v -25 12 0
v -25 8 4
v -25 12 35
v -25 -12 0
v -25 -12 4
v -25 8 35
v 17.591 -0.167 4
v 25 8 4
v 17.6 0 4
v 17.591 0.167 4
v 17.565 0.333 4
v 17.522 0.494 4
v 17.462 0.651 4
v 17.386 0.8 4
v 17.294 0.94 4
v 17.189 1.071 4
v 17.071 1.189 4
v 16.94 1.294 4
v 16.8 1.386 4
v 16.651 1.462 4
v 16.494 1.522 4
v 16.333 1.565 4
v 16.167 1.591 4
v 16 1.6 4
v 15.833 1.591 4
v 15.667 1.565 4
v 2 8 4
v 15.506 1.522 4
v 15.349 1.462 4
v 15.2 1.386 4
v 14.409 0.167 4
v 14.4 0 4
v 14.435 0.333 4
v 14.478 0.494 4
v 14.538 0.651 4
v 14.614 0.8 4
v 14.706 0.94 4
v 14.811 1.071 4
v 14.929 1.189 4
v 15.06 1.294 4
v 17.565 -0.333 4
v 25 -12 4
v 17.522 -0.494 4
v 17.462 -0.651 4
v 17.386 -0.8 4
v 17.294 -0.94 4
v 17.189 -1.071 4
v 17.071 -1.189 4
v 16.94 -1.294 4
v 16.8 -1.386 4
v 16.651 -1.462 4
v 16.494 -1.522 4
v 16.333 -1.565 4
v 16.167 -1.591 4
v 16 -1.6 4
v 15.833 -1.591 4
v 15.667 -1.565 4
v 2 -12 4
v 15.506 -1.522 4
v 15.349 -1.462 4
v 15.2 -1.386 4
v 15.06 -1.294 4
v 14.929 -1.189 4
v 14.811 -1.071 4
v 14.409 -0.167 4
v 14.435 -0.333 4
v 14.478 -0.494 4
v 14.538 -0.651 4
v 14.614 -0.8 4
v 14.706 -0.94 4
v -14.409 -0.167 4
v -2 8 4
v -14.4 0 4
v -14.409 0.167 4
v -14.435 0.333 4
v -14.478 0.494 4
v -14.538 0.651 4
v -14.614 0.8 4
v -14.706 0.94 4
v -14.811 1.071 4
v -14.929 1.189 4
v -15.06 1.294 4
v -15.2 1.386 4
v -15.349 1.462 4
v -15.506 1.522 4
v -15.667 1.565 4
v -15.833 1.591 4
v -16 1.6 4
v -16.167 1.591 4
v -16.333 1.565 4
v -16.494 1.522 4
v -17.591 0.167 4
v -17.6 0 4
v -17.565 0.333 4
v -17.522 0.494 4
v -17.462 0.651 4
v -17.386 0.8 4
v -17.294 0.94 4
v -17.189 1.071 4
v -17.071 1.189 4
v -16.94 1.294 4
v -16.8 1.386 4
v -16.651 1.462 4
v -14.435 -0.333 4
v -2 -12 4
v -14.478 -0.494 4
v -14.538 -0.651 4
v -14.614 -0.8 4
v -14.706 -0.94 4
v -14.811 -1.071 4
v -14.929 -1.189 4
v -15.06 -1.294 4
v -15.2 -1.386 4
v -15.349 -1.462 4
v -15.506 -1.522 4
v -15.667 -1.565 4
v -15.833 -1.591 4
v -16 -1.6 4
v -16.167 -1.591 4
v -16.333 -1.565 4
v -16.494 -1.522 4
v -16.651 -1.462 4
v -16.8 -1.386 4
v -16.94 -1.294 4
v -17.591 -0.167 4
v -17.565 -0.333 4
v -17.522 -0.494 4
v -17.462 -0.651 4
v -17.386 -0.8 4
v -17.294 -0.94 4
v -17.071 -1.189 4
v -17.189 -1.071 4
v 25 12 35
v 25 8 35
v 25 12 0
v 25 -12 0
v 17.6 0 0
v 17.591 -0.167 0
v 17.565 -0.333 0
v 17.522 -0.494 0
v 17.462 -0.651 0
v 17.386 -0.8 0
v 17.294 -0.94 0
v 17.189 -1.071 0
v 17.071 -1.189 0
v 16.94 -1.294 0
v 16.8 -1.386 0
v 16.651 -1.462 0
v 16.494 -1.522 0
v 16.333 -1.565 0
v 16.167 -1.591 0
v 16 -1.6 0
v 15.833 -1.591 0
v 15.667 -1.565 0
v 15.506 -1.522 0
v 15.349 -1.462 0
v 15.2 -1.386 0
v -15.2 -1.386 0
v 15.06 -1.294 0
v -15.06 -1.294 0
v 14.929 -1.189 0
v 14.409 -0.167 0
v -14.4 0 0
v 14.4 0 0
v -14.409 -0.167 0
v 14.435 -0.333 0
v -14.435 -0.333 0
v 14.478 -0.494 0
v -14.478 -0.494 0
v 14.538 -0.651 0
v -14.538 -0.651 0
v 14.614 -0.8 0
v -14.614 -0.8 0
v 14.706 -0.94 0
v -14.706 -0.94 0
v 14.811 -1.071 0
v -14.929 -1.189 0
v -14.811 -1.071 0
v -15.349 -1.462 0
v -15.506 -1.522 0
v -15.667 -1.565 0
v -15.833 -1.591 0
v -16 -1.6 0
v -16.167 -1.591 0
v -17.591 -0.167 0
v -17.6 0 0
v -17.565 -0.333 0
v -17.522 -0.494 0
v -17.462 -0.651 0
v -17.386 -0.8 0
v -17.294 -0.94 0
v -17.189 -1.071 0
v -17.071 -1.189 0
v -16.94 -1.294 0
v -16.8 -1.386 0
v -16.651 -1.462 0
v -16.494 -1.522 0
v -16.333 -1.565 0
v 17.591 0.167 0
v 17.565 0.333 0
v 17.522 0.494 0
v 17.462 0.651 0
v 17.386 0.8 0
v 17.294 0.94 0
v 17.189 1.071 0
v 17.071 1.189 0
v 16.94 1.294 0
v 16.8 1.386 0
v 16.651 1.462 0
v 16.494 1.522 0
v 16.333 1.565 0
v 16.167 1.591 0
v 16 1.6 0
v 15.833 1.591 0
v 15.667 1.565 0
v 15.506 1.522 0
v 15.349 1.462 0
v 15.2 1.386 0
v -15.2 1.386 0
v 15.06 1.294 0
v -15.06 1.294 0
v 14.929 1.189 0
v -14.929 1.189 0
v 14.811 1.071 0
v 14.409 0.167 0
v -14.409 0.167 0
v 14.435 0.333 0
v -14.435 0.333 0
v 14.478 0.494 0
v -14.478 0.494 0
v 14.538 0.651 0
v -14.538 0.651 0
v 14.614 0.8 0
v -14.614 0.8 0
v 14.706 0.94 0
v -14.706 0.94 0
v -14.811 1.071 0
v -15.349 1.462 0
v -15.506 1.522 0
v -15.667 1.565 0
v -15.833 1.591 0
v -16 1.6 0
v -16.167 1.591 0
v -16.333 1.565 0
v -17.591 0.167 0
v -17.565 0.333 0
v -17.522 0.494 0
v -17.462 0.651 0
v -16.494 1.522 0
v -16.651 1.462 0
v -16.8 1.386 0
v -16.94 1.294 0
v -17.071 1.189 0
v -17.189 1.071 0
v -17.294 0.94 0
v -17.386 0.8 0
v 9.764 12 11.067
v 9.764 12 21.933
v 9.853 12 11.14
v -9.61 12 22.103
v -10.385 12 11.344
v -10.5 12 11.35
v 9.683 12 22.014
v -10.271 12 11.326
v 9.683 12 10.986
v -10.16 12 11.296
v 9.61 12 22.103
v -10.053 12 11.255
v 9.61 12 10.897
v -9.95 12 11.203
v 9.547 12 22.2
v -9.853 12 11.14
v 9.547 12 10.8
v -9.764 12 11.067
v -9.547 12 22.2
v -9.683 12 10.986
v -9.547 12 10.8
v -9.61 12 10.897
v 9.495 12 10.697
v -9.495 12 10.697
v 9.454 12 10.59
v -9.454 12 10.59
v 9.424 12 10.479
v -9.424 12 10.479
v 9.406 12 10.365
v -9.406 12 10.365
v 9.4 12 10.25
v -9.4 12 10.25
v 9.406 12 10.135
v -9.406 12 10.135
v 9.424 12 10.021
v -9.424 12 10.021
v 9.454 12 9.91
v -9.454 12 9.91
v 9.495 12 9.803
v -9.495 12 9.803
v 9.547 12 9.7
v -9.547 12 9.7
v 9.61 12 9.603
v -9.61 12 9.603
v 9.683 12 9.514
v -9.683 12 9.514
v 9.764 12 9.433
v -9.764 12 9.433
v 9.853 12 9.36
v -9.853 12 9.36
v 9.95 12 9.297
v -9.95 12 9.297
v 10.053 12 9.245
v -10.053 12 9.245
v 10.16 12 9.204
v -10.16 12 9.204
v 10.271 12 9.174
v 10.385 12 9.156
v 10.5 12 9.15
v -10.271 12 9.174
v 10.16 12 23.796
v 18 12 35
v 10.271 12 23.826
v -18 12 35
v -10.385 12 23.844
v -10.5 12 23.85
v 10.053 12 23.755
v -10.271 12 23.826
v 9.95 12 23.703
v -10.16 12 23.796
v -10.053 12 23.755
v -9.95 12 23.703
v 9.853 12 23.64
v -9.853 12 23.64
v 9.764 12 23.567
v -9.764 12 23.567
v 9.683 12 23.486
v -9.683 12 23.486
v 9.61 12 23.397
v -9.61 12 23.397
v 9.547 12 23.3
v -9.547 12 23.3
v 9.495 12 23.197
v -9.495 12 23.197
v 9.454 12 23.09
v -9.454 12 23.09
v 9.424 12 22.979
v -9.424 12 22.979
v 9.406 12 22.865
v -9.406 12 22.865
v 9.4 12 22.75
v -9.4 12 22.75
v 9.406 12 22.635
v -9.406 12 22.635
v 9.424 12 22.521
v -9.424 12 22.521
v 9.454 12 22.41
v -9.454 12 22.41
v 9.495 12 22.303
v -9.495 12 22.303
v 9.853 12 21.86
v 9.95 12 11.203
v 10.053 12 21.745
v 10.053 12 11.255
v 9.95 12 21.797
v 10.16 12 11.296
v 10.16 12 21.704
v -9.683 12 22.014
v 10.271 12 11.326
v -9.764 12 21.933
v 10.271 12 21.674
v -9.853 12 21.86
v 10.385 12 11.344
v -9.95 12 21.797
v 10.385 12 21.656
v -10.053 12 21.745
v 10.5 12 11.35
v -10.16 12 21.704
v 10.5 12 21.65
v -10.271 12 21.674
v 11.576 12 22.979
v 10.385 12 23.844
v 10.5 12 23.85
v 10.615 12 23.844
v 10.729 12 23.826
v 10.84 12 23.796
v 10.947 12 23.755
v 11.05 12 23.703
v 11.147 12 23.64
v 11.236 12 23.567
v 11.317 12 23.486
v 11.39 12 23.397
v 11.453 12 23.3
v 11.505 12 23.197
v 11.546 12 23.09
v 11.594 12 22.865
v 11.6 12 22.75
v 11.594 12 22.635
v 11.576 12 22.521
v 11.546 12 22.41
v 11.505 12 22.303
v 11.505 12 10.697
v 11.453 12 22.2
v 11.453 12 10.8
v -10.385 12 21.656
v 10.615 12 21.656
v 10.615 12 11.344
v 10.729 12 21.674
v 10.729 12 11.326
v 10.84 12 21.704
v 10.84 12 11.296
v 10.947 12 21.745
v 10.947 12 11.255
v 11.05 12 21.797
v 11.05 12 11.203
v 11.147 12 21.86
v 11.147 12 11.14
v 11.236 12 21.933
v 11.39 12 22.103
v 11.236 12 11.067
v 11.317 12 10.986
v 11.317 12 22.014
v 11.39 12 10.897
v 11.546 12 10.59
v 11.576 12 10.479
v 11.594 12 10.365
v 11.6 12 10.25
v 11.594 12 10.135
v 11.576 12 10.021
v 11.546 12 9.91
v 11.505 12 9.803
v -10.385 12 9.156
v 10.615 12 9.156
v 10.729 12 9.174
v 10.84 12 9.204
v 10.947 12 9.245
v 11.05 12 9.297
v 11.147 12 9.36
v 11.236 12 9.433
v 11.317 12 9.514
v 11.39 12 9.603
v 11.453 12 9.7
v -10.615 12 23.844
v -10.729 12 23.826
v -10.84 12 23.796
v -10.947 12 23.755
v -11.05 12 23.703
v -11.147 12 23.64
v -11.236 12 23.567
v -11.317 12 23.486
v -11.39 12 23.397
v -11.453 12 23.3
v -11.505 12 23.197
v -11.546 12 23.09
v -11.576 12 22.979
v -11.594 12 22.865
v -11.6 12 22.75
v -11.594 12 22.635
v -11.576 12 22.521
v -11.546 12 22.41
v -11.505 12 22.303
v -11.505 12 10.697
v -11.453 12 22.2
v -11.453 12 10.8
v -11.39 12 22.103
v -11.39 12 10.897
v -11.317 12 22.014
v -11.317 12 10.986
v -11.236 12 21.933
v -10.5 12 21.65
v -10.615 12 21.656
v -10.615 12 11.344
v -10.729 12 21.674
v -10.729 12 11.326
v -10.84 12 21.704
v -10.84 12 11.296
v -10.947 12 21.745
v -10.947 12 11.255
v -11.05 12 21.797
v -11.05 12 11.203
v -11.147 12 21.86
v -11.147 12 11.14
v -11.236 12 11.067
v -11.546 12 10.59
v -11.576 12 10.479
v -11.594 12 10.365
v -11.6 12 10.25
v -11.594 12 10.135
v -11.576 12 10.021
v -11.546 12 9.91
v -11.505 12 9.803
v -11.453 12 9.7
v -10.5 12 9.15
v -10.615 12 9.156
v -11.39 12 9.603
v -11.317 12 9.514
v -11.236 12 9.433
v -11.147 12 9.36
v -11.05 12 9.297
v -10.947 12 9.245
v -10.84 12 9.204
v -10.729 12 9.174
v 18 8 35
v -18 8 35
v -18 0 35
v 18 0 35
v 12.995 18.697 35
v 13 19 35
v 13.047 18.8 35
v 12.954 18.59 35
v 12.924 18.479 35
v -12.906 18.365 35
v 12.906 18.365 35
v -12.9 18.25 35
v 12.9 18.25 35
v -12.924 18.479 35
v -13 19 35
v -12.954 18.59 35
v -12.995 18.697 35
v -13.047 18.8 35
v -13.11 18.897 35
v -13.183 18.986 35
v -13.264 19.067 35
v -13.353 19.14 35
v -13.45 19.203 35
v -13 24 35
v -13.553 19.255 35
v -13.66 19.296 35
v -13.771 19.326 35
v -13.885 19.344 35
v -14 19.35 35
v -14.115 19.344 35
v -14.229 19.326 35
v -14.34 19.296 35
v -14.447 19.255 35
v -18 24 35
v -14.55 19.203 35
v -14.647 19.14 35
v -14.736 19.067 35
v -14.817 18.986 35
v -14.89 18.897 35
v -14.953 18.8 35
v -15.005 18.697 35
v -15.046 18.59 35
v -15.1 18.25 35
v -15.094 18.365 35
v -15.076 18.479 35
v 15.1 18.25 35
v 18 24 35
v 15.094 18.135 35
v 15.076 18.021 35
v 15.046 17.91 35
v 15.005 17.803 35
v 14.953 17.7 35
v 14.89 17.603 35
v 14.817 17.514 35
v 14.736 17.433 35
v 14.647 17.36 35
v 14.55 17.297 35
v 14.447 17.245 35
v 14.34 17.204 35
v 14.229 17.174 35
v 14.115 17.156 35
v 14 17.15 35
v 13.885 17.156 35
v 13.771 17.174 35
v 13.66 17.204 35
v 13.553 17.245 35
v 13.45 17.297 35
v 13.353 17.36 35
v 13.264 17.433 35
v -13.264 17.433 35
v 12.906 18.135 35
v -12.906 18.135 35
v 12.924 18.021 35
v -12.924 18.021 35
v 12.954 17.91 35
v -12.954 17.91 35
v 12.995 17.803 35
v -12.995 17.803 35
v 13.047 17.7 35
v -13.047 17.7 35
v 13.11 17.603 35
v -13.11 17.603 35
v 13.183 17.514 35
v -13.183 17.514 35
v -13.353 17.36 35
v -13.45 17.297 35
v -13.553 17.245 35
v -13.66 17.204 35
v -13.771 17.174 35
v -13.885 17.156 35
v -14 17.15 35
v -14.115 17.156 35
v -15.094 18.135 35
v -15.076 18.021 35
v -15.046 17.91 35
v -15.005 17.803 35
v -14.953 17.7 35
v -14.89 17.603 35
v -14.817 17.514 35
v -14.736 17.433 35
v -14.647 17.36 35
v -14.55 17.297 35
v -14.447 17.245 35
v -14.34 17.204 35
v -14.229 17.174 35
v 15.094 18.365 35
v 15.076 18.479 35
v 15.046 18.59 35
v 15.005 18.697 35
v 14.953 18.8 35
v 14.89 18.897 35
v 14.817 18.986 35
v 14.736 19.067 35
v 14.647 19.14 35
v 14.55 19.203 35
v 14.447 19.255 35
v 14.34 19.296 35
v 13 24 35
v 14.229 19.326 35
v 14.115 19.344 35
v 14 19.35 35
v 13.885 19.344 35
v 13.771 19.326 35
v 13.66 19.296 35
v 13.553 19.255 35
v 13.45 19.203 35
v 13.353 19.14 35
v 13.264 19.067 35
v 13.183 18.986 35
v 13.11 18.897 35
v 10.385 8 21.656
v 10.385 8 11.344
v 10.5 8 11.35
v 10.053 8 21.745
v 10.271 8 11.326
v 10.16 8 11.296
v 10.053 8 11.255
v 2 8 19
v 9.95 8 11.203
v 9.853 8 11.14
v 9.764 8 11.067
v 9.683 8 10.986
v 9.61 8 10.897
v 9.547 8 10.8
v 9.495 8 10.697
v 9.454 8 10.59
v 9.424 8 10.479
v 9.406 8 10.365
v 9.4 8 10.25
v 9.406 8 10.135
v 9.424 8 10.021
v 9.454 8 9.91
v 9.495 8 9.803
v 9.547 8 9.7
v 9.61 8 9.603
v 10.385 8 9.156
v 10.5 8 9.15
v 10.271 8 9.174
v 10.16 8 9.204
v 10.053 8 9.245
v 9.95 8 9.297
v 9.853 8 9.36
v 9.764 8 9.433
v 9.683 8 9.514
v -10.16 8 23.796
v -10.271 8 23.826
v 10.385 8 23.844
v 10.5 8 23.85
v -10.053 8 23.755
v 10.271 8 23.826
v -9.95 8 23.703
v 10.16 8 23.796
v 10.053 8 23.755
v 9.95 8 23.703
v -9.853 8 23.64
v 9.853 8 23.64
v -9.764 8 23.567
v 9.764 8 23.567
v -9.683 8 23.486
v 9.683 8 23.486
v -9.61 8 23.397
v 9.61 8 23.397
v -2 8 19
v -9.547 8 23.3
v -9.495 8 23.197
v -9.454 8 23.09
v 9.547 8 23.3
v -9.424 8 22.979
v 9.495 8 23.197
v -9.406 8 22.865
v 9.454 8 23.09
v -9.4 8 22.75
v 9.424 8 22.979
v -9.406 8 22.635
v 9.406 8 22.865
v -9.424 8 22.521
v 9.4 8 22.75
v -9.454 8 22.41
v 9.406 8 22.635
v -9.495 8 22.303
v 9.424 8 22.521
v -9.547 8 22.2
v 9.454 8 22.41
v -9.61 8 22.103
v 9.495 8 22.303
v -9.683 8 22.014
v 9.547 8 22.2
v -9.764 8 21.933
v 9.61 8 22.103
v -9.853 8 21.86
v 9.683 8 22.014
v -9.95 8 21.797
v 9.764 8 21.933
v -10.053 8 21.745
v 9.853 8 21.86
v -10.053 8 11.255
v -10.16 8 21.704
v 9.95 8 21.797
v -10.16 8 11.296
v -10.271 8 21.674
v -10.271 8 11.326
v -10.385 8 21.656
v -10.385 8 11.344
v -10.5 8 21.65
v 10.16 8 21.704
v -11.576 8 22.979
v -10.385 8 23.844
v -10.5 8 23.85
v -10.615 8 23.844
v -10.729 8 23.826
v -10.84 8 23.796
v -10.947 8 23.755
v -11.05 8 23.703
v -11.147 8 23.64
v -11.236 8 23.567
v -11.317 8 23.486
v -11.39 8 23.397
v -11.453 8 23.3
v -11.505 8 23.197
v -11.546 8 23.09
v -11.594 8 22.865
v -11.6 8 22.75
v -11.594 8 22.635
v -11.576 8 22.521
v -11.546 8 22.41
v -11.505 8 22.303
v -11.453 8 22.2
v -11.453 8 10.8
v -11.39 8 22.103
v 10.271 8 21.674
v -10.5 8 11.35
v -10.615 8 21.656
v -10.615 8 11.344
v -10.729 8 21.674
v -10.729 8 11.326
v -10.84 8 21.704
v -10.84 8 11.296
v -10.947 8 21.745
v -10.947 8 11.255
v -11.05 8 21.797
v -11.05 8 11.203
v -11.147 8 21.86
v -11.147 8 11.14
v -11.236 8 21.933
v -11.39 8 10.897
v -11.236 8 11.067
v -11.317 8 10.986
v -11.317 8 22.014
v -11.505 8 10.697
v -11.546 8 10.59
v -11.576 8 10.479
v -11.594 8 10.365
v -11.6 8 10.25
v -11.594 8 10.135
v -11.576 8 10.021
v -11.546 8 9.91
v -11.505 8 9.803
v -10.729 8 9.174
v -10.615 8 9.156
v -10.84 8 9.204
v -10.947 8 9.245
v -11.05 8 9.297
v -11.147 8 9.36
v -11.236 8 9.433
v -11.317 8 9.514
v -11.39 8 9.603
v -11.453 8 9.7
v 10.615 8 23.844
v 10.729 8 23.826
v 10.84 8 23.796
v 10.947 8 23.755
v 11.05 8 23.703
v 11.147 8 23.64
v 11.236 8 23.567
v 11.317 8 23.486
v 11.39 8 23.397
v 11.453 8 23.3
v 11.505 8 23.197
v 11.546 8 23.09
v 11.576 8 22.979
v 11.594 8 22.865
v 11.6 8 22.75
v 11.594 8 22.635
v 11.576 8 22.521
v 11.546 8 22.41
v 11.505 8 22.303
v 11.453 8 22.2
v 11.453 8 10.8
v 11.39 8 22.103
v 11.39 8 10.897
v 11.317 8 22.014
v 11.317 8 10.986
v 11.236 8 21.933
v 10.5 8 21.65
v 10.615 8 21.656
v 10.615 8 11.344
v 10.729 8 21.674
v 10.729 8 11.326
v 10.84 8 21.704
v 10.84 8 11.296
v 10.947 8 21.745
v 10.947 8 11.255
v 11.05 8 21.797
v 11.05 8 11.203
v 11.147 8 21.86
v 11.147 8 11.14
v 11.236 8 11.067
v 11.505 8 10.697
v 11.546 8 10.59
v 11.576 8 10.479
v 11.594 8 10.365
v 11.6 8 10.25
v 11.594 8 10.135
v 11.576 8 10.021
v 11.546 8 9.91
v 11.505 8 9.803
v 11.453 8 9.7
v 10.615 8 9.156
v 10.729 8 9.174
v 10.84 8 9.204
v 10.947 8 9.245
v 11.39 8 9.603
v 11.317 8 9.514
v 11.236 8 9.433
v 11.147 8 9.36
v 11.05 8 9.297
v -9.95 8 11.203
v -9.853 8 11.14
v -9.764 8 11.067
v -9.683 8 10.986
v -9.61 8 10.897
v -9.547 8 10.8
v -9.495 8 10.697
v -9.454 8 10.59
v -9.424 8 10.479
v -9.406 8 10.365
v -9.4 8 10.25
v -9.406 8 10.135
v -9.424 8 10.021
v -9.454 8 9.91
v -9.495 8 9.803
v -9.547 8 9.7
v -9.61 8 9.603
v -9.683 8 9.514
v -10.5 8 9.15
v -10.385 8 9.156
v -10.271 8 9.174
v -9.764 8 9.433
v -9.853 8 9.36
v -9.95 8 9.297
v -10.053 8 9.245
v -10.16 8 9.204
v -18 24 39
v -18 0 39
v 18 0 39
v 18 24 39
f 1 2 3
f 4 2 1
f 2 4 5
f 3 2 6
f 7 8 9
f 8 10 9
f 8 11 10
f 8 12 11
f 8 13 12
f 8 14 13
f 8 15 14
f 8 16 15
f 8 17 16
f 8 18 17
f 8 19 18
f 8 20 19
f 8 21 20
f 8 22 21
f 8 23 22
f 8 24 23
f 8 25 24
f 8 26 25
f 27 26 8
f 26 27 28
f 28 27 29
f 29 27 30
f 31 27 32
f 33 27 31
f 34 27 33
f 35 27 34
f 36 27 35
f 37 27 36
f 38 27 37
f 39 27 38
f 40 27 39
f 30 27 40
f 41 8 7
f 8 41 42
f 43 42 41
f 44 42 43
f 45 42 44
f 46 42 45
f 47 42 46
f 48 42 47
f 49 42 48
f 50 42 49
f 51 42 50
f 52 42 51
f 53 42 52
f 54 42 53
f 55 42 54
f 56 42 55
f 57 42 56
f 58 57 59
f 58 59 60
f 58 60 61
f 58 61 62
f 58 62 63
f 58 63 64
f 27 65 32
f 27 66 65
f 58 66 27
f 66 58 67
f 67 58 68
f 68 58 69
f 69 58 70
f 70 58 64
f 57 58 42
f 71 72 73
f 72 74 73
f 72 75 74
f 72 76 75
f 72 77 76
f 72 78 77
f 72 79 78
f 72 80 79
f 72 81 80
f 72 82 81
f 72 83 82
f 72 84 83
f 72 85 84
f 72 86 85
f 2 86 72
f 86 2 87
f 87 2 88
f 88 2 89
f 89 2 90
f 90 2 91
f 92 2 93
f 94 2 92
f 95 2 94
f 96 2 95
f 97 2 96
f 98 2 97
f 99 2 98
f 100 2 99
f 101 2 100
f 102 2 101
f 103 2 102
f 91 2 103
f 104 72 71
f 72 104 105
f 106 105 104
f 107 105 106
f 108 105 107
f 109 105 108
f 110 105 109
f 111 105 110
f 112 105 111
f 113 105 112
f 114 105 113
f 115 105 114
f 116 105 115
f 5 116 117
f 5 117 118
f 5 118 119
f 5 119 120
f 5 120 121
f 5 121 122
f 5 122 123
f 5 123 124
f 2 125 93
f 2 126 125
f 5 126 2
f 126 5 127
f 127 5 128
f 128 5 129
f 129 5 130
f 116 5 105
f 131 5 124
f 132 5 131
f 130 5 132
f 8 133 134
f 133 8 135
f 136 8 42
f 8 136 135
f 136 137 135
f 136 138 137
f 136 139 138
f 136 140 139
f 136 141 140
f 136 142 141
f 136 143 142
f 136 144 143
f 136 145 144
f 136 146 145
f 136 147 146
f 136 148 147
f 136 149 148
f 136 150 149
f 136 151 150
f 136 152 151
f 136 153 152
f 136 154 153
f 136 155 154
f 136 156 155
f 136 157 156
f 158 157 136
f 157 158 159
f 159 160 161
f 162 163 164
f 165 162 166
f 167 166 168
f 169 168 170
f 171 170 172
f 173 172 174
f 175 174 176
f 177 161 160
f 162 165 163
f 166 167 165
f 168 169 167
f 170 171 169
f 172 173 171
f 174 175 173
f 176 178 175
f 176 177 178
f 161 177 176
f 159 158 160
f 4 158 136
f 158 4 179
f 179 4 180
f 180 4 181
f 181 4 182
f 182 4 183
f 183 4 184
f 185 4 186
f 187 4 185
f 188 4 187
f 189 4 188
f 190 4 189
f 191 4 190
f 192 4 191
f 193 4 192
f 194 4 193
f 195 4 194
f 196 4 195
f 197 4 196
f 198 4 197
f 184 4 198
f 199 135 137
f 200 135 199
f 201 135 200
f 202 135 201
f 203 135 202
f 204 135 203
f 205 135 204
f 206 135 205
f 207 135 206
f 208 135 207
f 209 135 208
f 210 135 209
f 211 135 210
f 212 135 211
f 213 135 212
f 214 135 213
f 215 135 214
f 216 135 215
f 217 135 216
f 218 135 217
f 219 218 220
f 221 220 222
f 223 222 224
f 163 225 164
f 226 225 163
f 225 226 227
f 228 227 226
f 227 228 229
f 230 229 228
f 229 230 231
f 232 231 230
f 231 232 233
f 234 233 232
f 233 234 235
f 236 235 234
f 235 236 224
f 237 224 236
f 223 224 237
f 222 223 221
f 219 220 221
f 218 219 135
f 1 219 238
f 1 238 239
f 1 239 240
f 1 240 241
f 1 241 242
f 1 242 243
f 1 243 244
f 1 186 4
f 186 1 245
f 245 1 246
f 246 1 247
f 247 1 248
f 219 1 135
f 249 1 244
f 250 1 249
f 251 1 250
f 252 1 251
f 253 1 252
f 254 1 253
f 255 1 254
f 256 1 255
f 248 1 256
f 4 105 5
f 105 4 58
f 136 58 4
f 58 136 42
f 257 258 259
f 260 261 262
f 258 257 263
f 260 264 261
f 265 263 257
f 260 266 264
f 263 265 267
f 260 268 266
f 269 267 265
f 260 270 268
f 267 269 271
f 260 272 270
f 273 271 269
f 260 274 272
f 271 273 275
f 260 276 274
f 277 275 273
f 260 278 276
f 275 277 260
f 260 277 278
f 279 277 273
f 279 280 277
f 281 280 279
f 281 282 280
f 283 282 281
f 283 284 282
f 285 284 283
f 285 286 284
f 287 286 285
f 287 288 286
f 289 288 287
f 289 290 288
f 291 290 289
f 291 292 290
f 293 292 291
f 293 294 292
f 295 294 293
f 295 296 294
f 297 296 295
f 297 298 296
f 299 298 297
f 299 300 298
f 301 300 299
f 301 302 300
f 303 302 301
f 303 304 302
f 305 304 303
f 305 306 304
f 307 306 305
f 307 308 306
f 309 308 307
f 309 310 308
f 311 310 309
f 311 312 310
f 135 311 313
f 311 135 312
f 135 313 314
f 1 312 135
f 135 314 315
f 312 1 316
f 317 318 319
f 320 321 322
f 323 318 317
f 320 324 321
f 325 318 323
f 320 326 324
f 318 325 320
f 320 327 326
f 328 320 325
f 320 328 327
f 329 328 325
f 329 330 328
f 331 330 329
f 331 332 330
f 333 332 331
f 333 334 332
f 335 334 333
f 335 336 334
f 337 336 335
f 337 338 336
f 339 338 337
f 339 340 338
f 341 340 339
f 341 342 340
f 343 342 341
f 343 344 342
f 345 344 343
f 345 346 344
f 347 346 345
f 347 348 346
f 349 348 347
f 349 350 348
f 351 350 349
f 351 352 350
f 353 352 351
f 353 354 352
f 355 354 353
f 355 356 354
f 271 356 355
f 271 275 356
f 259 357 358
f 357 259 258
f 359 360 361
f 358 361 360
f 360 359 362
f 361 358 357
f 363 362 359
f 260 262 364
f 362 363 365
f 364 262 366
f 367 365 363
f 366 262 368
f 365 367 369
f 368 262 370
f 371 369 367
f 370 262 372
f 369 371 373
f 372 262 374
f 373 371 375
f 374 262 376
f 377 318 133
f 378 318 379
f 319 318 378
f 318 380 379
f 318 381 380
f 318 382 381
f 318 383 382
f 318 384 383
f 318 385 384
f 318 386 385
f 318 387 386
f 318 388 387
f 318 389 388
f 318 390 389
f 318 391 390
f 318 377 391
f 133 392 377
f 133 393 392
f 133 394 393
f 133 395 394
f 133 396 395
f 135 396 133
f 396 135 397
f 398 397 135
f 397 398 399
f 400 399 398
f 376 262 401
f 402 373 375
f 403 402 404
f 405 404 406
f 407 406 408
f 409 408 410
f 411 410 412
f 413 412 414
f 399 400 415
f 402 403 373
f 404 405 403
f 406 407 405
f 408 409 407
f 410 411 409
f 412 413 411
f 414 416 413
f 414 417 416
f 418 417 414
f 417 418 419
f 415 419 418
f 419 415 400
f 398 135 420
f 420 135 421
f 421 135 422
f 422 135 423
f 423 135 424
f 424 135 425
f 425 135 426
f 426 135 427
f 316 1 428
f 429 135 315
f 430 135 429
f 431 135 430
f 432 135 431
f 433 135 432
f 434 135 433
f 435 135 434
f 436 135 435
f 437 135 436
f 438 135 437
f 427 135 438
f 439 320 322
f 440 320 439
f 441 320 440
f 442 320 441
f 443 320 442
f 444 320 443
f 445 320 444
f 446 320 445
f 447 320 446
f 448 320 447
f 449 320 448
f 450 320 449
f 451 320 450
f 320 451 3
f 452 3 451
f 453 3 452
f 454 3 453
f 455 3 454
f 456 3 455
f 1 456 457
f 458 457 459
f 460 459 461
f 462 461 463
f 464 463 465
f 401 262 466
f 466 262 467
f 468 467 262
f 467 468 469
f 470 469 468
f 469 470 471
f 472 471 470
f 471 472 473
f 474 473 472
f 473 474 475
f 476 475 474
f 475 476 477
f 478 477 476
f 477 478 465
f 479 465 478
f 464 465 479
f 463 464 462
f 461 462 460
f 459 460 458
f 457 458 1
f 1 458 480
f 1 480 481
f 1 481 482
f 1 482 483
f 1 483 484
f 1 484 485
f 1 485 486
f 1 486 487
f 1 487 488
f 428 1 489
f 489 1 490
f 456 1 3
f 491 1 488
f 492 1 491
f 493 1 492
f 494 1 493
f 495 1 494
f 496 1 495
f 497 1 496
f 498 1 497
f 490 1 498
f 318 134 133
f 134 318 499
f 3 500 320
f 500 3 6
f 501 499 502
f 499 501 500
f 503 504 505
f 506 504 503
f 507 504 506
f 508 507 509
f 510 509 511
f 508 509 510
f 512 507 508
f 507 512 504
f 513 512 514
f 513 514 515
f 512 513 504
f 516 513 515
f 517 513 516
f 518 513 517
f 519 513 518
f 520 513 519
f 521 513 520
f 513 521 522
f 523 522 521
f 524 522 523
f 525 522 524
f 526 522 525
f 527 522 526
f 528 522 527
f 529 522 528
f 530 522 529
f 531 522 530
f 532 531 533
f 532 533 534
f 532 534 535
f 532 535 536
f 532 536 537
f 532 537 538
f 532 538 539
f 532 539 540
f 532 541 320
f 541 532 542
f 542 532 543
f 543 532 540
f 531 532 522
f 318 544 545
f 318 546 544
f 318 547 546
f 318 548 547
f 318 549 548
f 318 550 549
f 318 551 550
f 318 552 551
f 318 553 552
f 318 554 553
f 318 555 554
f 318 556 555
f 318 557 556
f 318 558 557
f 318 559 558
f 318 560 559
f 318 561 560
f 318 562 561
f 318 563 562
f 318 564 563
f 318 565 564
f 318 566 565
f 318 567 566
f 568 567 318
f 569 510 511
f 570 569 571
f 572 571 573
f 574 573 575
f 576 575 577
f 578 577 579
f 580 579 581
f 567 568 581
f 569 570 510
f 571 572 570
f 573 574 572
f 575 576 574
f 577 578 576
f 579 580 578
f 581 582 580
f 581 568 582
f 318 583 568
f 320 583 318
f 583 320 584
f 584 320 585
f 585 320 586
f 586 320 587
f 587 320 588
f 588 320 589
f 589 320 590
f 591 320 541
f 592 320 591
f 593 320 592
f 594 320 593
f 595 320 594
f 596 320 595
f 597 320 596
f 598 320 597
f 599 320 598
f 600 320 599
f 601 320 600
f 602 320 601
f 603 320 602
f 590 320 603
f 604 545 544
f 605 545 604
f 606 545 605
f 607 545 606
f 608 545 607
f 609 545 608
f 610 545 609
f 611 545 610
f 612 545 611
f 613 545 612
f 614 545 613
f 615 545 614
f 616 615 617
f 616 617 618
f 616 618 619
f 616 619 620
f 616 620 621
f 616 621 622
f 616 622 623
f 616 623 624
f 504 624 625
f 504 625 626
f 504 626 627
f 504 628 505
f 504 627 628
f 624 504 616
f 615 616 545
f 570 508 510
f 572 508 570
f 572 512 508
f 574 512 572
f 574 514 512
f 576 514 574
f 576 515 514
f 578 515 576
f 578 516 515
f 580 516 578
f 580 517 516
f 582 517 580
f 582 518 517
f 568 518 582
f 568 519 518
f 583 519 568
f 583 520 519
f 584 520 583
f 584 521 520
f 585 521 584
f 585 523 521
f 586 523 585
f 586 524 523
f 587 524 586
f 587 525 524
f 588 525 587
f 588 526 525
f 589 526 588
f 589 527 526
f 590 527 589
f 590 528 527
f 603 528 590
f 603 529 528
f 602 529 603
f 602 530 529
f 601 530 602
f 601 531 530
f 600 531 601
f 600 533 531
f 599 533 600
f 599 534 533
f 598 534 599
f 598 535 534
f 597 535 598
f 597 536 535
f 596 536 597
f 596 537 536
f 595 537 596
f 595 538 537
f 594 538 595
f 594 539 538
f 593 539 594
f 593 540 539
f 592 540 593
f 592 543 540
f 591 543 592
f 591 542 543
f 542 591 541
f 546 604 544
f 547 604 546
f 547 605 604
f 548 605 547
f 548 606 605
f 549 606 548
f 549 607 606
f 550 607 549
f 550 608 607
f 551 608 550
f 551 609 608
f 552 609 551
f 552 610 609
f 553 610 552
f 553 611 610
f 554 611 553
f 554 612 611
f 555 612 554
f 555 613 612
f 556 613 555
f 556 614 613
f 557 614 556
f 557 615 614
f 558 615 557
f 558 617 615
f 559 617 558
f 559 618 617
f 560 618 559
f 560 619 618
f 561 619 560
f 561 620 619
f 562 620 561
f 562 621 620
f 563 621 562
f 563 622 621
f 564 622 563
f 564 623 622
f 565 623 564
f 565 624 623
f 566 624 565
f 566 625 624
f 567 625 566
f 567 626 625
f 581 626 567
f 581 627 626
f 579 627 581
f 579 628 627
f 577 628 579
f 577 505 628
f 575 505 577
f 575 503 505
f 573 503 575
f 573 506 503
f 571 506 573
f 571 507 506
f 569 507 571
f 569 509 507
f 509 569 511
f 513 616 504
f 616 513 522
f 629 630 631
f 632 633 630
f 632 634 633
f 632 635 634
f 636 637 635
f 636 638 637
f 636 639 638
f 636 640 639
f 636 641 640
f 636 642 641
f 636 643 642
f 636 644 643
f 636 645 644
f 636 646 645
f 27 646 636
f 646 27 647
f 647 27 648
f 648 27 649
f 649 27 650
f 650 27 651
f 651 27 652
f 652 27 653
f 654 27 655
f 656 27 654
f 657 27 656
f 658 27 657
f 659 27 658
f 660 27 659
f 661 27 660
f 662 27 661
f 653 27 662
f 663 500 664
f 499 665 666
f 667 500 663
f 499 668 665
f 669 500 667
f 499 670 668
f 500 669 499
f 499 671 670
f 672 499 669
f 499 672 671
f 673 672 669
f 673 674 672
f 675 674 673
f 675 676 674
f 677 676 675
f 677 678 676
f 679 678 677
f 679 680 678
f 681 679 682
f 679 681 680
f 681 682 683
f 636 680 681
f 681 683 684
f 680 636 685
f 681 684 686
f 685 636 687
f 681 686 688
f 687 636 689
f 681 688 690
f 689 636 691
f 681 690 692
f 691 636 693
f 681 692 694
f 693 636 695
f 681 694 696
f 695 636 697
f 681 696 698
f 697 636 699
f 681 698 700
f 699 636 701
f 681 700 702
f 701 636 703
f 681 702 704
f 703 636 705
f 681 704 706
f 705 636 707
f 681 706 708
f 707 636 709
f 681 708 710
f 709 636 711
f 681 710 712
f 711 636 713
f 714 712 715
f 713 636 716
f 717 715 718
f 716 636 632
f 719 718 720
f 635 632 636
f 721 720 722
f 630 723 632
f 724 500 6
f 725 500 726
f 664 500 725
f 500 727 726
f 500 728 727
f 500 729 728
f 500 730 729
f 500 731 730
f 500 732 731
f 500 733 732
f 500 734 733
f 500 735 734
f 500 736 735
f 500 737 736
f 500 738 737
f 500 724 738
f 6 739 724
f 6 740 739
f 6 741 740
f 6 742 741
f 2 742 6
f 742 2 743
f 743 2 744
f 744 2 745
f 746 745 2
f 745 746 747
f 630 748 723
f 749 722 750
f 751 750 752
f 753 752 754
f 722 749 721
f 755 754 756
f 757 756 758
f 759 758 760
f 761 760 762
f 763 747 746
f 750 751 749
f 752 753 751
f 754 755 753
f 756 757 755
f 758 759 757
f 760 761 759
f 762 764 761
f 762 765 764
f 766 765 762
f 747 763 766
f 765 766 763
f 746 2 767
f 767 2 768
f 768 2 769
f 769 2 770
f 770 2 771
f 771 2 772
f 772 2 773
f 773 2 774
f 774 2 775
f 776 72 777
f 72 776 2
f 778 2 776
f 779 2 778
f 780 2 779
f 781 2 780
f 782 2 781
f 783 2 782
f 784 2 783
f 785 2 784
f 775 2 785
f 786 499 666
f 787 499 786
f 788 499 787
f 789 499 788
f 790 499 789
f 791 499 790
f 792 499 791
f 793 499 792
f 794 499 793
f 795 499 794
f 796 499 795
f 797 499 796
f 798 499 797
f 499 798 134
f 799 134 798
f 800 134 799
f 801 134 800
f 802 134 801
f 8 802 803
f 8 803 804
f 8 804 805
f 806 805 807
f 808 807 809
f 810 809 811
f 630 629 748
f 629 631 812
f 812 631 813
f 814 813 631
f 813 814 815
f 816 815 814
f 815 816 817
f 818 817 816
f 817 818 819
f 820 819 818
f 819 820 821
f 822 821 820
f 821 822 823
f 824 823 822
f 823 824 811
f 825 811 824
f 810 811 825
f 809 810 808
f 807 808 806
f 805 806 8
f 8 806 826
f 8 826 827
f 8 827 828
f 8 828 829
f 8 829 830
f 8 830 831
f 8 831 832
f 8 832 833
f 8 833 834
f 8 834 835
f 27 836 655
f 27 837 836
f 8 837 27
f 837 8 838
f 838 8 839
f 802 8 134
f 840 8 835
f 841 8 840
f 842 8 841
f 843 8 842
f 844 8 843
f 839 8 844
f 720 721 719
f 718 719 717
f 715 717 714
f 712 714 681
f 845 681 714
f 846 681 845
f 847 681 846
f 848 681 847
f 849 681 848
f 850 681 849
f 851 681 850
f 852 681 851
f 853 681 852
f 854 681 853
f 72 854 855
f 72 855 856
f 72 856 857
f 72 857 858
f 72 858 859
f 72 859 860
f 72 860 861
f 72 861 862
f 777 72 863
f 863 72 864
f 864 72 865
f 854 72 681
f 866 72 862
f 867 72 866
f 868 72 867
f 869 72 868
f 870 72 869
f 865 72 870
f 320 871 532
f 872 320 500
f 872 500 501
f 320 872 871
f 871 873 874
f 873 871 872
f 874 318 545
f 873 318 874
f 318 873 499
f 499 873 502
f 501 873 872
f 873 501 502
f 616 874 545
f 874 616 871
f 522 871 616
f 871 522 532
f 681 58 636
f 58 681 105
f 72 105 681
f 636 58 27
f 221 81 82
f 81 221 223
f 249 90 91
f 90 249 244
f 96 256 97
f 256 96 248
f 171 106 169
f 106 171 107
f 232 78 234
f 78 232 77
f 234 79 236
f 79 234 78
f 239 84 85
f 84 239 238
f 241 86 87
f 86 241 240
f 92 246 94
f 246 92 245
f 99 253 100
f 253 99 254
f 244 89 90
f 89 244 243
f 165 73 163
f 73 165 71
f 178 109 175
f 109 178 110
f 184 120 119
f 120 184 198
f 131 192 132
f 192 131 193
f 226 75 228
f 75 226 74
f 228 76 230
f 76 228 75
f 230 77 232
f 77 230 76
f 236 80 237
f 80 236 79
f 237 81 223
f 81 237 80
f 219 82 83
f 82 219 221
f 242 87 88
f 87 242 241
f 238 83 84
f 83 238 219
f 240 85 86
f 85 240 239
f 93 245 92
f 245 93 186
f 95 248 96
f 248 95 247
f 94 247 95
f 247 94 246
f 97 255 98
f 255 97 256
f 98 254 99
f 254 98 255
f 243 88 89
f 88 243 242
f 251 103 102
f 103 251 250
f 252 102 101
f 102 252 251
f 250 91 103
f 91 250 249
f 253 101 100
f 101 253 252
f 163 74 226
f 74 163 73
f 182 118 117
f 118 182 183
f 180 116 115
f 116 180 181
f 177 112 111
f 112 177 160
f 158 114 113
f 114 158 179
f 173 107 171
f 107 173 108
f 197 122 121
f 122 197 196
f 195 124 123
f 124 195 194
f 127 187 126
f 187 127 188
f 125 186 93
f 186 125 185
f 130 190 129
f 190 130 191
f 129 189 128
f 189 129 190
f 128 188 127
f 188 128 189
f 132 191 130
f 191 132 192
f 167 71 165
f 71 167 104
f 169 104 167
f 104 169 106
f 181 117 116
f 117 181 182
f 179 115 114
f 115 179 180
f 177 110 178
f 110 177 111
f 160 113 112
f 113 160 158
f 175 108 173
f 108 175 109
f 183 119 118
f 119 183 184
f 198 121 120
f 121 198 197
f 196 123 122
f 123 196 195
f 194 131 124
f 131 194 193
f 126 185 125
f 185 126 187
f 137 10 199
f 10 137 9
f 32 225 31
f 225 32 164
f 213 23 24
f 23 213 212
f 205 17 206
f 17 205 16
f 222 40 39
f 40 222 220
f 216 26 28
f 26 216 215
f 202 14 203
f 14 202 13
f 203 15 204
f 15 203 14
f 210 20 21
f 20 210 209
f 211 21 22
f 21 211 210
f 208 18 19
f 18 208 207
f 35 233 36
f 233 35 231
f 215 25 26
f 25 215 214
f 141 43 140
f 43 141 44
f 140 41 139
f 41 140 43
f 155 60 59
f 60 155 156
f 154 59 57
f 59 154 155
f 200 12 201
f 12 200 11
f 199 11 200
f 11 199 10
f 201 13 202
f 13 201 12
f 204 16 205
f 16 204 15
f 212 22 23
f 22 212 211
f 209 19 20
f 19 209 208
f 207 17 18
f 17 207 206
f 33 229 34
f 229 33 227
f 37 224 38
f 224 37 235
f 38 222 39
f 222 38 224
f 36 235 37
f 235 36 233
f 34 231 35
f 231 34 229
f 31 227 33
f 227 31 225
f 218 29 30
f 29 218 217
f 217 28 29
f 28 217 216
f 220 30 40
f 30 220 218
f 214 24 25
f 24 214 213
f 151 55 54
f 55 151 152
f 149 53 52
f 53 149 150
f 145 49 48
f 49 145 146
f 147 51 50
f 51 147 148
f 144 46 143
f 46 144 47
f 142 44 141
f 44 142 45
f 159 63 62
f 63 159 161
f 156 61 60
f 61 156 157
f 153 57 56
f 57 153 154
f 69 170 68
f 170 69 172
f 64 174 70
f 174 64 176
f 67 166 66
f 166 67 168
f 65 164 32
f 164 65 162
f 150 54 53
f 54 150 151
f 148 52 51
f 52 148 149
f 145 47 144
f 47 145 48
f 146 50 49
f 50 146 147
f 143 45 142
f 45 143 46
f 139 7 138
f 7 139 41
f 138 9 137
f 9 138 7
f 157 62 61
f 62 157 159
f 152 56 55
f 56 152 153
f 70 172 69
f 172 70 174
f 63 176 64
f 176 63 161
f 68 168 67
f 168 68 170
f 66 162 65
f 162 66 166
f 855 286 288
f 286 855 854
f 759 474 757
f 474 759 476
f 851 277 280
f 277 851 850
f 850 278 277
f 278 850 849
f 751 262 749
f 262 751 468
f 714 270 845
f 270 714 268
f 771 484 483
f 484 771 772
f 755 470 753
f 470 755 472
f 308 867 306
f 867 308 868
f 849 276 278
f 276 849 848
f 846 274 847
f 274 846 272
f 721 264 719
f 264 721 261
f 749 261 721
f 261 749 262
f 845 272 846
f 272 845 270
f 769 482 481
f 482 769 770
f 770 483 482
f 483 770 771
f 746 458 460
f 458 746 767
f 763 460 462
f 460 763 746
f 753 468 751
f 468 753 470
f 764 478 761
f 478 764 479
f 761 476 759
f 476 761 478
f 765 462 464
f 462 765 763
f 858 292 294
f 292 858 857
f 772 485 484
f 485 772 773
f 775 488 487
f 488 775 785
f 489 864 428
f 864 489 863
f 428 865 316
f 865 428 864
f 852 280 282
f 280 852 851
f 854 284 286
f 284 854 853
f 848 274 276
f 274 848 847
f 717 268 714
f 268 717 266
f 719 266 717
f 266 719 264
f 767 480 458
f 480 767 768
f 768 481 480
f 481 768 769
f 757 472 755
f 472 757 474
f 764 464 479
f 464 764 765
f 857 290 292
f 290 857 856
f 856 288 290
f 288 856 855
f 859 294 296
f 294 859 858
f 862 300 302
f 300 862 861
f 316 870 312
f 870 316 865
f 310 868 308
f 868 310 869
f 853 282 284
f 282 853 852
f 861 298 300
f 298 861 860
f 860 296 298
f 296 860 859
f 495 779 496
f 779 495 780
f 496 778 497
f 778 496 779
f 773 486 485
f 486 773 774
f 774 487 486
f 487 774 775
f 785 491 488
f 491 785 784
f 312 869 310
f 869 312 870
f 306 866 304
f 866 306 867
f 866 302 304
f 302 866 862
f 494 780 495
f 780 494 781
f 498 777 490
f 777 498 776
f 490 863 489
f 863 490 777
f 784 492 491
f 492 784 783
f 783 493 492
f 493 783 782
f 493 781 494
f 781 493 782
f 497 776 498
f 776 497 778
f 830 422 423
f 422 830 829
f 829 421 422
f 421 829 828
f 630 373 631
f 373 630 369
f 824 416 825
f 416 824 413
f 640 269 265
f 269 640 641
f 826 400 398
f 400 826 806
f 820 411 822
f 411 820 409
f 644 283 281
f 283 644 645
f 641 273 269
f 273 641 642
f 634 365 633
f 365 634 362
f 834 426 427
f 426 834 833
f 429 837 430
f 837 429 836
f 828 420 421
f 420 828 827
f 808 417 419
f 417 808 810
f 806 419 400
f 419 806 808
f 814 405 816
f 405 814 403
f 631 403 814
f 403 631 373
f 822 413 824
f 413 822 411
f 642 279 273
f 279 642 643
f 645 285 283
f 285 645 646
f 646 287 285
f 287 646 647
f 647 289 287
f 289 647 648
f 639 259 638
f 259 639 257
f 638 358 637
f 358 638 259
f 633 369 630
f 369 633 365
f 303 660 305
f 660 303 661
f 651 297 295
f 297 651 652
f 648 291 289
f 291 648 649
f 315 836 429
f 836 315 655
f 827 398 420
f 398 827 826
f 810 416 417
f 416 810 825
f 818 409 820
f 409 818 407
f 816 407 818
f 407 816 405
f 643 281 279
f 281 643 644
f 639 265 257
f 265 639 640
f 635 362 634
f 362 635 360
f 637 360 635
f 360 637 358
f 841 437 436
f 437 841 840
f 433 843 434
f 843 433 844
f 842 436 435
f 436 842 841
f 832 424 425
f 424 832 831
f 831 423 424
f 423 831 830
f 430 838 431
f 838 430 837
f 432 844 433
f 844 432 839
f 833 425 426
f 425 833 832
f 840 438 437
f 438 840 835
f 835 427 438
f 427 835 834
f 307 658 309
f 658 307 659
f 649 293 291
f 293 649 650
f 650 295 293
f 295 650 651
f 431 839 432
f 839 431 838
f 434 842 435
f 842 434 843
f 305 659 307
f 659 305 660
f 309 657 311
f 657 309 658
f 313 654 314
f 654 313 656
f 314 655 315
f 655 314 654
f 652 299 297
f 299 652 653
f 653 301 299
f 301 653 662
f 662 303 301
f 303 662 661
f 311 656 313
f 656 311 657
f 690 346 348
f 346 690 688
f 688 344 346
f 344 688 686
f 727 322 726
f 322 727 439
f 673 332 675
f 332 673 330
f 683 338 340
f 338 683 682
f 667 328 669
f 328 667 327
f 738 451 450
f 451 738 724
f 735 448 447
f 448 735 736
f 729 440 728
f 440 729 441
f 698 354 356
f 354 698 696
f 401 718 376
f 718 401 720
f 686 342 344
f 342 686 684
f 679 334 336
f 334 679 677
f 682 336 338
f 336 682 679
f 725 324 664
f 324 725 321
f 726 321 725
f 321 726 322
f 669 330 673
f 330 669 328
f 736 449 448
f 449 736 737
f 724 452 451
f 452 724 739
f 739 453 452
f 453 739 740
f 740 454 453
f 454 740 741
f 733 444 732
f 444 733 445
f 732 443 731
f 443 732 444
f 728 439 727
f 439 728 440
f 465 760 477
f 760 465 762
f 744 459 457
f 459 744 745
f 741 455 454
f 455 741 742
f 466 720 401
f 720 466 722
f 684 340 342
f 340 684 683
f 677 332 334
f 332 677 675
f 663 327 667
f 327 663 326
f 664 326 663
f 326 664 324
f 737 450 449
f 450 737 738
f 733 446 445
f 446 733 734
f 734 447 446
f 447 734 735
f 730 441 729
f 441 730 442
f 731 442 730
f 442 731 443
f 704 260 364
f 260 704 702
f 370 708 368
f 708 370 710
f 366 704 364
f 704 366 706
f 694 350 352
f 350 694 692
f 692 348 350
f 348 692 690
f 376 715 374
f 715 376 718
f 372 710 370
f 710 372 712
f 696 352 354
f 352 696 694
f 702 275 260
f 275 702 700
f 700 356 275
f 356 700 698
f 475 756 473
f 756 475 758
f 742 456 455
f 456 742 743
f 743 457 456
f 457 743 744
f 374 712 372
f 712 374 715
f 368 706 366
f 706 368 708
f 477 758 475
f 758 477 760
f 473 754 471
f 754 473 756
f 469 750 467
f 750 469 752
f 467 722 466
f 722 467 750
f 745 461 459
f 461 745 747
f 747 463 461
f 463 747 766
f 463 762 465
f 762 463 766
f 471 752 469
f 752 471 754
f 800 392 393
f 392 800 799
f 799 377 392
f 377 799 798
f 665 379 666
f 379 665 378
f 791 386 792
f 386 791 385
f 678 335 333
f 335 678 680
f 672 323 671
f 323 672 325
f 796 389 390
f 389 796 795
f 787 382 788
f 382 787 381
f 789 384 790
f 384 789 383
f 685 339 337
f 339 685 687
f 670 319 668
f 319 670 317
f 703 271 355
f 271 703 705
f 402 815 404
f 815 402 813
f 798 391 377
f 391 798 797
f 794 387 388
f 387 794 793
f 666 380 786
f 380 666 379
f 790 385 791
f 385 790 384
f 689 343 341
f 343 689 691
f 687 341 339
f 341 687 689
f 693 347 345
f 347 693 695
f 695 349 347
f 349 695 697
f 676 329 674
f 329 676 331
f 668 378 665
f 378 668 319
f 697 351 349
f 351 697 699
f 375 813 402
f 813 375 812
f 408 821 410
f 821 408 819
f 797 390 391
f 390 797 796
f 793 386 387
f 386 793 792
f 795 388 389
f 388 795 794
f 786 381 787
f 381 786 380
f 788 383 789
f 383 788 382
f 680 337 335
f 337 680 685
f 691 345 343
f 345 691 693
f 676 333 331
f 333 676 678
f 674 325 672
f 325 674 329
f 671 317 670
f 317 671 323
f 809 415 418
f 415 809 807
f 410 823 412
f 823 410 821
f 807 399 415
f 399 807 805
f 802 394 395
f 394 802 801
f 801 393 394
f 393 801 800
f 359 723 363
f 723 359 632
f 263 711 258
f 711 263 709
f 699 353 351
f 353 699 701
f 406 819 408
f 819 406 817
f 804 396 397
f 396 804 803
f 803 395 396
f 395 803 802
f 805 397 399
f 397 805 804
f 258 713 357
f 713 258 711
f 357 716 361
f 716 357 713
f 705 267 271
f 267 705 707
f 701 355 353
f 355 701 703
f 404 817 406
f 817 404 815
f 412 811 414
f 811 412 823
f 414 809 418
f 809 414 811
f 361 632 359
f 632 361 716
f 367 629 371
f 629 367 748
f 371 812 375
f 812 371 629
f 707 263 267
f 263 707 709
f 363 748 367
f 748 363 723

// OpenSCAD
$fn = 60; // ความละเอียดรูกลมมาตรฐาน

module pi_cam3_and_tfmini_top_upward() {
    difference() {
        // --- 1. ชิ้นงานตันหลัก (Solid Body - แผ่นฐาน + ผนังตั้ง + แผ่นรับส่องฟ้าด้านบน + Rib ค้ำ) ---
        union() {
            // [ฐานแบนราบรับลูกยาง Damper] หนา 4mm ขนาดกว้าง 50x24mm (หน้าผิวราบรับลูกยางเกลียว M3)
            translate([-25, -12, 0]) cube([50, 24, 4]);
            
            // [ผนังตั้งหิ้วบอร์ดกล้อง Pi Cam 3] หนา 4mm แผ่นตันเต็มความแข็งแรงสูง (กว้าง 50mm / สูง 30mm)
            translate([-25, 8, 0]) cube([50, 4, 35]);
            
            // ====================================================
            // [แก้ไขแล้ว] ย้ายแผ่นนอนยึด TFmini Plus ส่องฟ้า ขึ้นมาอยู่ด้านบนสุด (Z = 26)
            // วางเชื่อมจากหลังผนังตั้ง (Y = 12 ถึง 36) หน้ากว้าง 36mm หนา 4mm 
            // ====================================================
            translate([-18, 0, 35]) cube([36, 24, 4]);
            
            // [ครีบ Rib ค้ำแรงแนวหน้า-หลัง] หนา 4mm วางกึ่งกลางเป๊ะ (X = -2 ถึง 2)
            // ผิวเนื้อเต็มสโลปลาดเอียงต่อเนื่องจากแผ่นตั้งลงมาหาแผ่นฐานด้านหน้าอย่างมั่นคง
            translate([-2, -12, 4])
            polyhedron(
                points = [
                    [0,  0,  0],  // 0: หน้าล่างซ้าย
                    [4,  0,  0],  // 1: หน้าล่างขวา
                    [4, 20,  0],  // 2: หลังล่างขวา (ชนผนังตั้ง)
                    [0, 20,  0],  // 3: หลังล่างซ้าย (ชนผนังตั้ง)
                    [0, 20, 15],  // 4: หลังบนซ้าย (ชนผนังตั้ง)
                    [4, 20, 15]   // 5: หลังบนขวา (ชนผนังตั้ง)
                ],
                faces = [
                    [3, 2, 1, 0], // ฐานล่าง
                    [0, 1, 5, 4], // แนวสโลปเอียงลาดลงหน้า
                    [2, 3, 4, 5], // ผนังหลังที่แนบติดแผ่นตั้ง
                    [0, 4, 3],    // ผนังข้างฝั่งซ้าย
                    [1, 2, 5]     // ผนังข้างฝั่งขวา
                ]
            );
        }
        
        // --- 2. รูเจาะเรียบตรง ø3.2mm สำหรับรับเกลียวสกรู M3 ของลูกยาง Damper (2 จุด ระยะห่าง 32mm) ---
        translate([-16, 0, -1]) cylinder(d=3.2, h=10);
        translate([16, 0, -1]) cylinder(d=3.2, h=10);
        
        // --- 3. รูเจาะทะลุเรียบตรง ø2.2mm สำหรับน็อต M2 ยึดบอร์ดกล้อง Pi Cam 3 (4 จุด มองไปข้างหน้า) ---
        // [รูคู่ล่าง] ระดับความสูง Z = 10.25mm
        translate([-10.5, 15, 10.25]) rotate([90,0,0]) cylinder(d=2.2, h=10);
        translate([10.5, 15, 10.25]) rotate([90,0,0]) cylinder(d=2.2, h=10);
        
        // [รูคู่บน] ระดับความสูง Z = 22.75mm
        translate([-10.5, 15, 22.75]) rotate([90,0,0]) cylinder(d=2.2, h=10);
        translate([10.5, 15, 22.75]) rotate([90,0,0]) cylinder(d=2.2, h=10);
        
        // ====================================================
        // [แก้ไขพิกัดดิ่ง] รูยึดและช่องแสงสำหรับ TFmini Plus ขยับขึ้นมาตัดทะลุแผ่นบนสุด (Z = 25)
        // จัดศูนย์กลางชุดเจาะไว้ที่ระนาบปีกบน (X = 0, Y = 24)
        // ====================================================
        // 4.1 รูยึดสกรู M2 รอบบอดี้ TFmini Plus 4 จุด (ระยะมาตรฐาน: กว้าง 28mm / ลึก 11.5mm) เจาะลึกทะลุเพลทบน
        translate([-14, 24 - 5.75, 25]) cylinder(d=2.2, h=10);
        translate([ 14, 24 - 5.75, 25]) cylinder(d=2.2, h=10);
        translate([-14, 24 + 5.75, 25]) cylinder(d=2.2, h=10);
        translate([ 14, 24 + 5.75, 25]) cylinder(d=2.2, h=10);
        
        // 4.2 ช่องหน้าต่างเปิดโล่งให้หน้าเลนส์ TFmini Plus ยิงแสงขึ้นฟ้าได้เต็ม 100% (Size 26x10mm)
        translate([-13, 19, 25]) cube([26, 10, 10]);
    }
}

// รันโมเดลรวมร่างเวอร์ชันแก้ไขแผ่นวาง TFmini ไว้บนสุดตามสั่ง
pi_cam3_and_tfmini_top_upward();
